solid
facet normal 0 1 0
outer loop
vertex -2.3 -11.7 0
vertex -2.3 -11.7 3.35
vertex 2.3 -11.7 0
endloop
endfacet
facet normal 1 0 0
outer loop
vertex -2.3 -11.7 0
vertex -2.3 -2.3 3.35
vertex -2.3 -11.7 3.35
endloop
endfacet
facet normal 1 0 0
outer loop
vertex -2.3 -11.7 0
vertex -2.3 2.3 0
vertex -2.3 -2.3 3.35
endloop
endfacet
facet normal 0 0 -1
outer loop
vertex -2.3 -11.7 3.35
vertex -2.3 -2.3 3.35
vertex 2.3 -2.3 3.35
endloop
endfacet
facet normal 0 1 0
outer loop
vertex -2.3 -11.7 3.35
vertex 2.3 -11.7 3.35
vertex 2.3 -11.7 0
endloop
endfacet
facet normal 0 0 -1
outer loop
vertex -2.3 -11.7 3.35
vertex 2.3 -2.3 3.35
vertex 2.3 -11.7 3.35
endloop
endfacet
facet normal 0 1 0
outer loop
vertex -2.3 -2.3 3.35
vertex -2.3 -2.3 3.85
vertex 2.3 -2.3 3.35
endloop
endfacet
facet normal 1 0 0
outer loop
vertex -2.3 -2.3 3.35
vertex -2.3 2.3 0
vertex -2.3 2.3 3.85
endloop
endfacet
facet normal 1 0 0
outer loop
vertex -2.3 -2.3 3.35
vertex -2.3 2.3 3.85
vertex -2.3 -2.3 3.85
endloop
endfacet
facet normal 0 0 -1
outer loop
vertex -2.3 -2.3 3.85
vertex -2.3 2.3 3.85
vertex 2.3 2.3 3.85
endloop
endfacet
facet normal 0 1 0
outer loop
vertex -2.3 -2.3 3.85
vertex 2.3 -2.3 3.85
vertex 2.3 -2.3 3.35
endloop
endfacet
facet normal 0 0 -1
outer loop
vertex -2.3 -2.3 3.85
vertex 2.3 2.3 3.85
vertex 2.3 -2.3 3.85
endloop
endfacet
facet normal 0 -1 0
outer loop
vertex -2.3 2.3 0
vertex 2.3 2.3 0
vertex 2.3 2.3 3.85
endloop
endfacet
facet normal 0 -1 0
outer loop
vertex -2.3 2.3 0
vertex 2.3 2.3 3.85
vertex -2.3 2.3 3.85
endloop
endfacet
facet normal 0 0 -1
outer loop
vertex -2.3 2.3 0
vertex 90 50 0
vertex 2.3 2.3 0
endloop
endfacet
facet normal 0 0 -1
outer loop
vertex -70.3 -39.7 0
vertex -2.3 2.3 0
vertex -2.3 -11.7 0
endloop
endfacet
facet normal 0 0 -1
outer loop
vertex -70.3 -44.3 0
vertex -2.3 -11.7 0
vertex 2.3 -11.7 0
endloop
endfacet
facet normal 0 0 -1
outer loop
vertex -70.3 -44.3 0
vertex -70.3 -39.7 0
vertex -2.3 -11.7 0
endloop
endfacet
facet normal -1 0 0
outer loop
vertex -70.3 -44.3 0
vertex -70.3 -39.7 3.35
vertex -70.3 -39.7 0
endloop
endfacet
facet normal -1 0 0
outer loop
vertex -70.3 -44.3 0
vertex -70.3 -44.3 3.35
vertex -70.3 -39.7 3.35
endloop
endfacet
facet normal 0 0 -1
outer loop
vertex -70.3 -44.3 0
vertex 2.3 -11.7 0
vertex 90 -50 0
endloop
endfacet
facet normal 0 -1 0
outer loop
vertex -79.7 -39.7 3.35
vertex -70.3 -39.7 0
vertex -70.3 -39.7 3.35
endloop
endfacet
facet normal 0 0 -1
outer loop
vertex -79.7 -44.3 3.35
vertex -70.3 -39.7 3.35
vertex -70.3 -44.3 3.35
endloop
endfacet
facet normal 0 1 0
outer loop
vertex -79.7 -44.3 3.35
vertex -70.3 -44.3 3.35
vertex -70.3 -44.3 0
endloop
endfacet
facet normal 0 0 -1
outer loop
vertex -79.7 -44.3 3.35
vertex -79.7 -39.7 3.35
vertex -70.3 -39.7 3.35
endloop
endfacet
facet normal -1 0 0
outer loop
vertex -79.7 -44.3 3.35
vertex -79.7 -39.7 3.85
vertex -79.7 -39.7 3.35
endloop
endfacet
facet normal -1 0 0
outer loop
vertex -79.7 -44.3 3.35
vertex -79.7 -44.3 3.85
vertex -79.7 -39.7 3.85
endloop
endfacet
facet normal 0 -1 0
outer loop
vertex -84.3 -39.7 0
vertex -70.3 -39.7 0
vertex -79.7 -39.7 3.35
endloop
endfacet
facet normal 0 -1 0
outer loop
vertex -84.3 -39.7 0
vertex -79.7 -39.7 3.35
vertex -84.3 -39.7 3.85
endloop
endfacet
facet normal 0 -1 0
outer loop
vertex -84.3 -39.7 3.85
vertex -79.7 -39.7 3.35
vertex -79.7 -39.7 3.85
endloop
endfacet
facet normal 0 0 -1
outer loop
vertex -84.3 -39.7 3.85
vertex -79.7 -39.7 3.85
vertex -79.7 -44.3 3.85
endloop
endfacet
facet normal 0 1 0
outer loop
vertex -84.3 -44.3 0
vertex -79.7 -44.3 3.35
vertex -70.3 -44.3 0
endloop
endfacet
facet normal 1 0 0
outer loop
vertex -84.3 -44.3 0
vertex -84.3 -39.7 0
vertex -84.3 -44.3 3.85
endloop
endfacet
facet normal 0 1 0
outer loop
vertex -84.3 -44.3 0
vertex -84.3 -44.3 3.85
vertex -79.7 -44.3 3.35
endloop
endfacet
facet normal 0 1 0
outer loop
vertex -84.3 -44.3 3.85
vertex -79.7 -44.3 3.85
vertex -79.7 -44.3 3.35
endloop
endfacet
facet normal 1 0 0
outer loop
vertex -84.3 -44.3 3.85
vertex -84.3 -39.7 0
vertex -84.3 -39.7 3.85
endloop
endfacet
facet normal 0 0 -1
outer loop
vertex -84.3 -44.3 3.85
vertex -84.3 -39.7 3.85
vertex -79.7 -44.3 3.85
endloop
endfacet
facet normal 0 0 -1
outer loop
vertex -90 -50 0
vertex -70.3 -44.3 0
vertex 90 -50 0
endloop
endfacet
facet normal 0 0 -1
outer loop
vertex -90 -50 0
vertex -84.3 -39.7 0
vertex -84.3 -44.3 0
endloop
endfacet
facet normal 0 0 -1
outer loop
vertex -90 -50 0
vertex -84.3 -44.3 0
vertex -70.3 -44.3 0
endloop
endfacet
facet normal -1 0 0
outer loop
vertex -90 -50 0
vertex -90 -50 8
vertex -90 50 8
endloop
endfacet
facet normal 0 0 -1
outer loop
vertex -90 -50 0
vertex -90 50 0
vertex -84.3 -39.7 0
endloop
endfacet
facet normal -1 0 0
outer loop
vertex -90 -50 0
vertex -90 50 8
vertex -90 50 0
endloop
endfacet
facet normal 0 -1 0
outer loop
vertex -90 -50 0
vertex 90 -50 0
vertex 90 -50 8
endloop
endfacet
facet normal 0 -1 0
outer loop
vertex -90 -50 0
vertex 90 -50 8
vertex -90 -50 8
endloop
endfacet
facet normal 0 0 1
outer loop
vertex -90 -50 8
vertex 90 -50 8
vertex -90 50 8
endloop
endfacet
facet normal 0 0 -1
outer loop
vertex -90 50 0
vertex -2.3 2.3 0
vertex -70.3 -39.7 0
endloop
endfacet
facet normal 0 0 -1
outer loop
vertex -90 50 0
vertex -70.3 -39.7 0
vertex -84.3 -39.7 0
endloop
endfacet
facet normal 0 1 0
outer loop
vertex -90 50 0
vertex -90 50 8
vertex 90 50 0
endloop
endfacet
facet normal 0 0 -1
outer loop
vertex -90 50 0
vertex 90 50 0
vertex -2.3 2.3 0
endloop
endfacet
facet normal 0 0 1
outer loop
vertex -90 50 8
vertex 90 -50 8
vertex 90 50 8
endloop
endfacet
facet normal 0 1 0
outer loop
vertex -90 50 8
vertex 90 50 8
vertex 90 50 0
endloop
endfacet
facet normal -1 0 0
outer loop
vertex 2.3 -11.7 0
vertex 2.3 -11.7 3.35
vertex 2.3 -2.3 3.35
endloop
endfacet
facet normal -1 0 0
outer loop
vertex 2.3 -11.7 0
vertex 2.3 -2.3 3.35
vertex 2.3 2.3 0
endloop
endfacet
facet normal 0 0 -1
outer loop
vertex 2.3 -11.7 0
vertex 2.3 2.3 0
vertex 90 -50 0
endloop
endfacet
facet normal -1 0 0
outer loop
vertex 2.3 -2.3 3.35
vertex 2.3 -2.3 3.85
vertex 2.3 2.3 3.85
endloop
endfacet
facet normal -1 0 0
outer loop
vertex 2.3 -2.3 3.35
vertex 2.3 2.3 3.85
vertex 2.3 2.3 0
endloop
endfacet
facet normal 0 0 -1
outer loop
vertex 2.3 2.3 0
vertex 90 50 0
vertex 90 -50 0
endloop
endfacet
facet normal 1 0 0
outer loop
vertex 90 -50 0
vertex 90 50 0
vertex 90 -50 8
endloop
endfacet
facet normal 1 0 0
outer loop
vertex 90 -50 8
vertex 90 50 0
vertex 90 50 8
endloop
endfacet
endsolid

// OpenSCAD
// file: ../parameters.scad
//|==========================================|//
//|               CLOUD CHAMBER              |//
//|==========================================|//


//========== SCREWS ==========//

//Screw diameter and nut for M10 [mm]
M10_screw_diameter=10.4;
M10_head_height = 10;
M10_head_diameter = 16+0.5;
M10_nut_height = 10.5;
M10_nut_diameter = 25.5;
M10_nut_pocket = 22.3;

//Screw diameter and nut for M8 [mm]
M8_screw_diameter = 8 + 1;
M8_head_height = 8;
M8_head_diameter = 13.5;
M8_nut_height = 7.5;
M8_nut_diameter = 14.4 + 0.5;
M8_nut_pocket = 13 + 0.5;

//Screw diameter and nut for M6 [mm]
M6_screw_diameter=6.5;
M6_head_diameter = 10+0.5;
M6_head_height = 6;
M6_nut_height = 4.9;
M6_nut_diameter = 11.8;
M6_nut_pocket = 10.4;

//Screw diameter and nut for M5 [mm]
M5_screw_diameter=5.5;
M5_head_height = 5;
M5_head_diameter = 13+0.5;
M5_nut_height = 4.5;
M5_nut_diameter = 9.4;
M5_nut_pocket = 8.4;

//Screw diameter and nut for M4 [mm]
M4_screw_diameter=4.5;
M4_screw_head_height = 4;
M4_nut_height = 3.2;
M4_nut_diameter = 8.4;
M4_nut_pocket = 7.5;

//Screw diameter and nut for M3 [mm]
M3_screw_diameter = 3.2;
M3_nut_height = 2.7;
M3_nut_diameter = 6.6;
M3_screw_head_height = 3;
M3_nut_pocket = 5.6;

//Screw diameter and nut for M2,5 [mm]
M2_5_screw_diameter = 2.7;
M2_5_nut_height = 2.3;
M2_5_nut_diameter = 6;
M2_5_nut_pocket = 5.1;


//========== CHAMBER ==========//

//observation_surface_x
observation_surface_x = 180.5;
observation_surface_y = 100.5;

//cooper block
cooper_block_x = 180;
cooper_block_y = 100;
cooper_block_thickness = 8;

//chamber frame
chamber_width = 400;
chamber_deepth = 350;
chamber_height = 250;

//service door
door_width = 200;

//peltiers
peltier_size_x = 40;
peltier_size_y = 40;
peltier_thickness = 2.9;
peltier_cable_diameter = 4;

//water ALU block
water_block_width = 40;
water_block_length = 120;
water_block_thickness = 12.5;

//hose
hose_outer_diameter = 10;
hose_inner_diameter = 8;

//nextion display 2.8"
nextion_board_width = 85;
nextion_board_height = 50;
nextion_board_thickness = 1.6;
nextion_display_width = 69.5;
nextion_display_height = 50;
nextion_thickness = 7;
nextion_screw_diameter = M2_5_screw_diameter;
nextion_screw_width_distance = 78.5;
nextion_screw_height_distance = 49;


//========== ALU PROFILES ==========//

//30x30 profile
ALU30_size = 30;
ALU30_groove = 8;

//20x20 profile
ALU20_size = 20;
ALU20_groove = 6;


//========== ELECTRONIC DEVICE ==========//

//TO-92 package
TO92_width = 4.6;
TO92_height = 4.6;
TO92_thickness = 3.9;
TO92_pins = 14.5;
TO92_bottom_to_pins = 1;
// main file
include <../parameters.scad>

module 1002_Cu() {

    module TO92() {
        translate([0, 0, TO92_thickness/2-0.1])
            cube([TO92_width, TO92_height, TO92_thickness+0.1], center=true);

        translate([0, (TO92_pins-5)/-2-TO92_height/2+0.1, (TO92_thickness-TO92_bottom_to_pins)/2-0.1+0.25])
            cube([TO92_width, TO92_pins-5, TO92_thickness-TO92_bottom_to_pins+0.1+0.5], center=true);
    }

    difference() {
        translate([0, 0, cooper_block_thickness/2]) {
            cube([cooper_block_x, cooper_block_y, cooper_block_thickness], center=true);
        }

        TO92();

        translate([-cooper_block_x/2+8, -cooper_block_y/2+8, 0])
            rotate([0, 0, 90])
                TO92();   
    }
}

1002_Cu();
